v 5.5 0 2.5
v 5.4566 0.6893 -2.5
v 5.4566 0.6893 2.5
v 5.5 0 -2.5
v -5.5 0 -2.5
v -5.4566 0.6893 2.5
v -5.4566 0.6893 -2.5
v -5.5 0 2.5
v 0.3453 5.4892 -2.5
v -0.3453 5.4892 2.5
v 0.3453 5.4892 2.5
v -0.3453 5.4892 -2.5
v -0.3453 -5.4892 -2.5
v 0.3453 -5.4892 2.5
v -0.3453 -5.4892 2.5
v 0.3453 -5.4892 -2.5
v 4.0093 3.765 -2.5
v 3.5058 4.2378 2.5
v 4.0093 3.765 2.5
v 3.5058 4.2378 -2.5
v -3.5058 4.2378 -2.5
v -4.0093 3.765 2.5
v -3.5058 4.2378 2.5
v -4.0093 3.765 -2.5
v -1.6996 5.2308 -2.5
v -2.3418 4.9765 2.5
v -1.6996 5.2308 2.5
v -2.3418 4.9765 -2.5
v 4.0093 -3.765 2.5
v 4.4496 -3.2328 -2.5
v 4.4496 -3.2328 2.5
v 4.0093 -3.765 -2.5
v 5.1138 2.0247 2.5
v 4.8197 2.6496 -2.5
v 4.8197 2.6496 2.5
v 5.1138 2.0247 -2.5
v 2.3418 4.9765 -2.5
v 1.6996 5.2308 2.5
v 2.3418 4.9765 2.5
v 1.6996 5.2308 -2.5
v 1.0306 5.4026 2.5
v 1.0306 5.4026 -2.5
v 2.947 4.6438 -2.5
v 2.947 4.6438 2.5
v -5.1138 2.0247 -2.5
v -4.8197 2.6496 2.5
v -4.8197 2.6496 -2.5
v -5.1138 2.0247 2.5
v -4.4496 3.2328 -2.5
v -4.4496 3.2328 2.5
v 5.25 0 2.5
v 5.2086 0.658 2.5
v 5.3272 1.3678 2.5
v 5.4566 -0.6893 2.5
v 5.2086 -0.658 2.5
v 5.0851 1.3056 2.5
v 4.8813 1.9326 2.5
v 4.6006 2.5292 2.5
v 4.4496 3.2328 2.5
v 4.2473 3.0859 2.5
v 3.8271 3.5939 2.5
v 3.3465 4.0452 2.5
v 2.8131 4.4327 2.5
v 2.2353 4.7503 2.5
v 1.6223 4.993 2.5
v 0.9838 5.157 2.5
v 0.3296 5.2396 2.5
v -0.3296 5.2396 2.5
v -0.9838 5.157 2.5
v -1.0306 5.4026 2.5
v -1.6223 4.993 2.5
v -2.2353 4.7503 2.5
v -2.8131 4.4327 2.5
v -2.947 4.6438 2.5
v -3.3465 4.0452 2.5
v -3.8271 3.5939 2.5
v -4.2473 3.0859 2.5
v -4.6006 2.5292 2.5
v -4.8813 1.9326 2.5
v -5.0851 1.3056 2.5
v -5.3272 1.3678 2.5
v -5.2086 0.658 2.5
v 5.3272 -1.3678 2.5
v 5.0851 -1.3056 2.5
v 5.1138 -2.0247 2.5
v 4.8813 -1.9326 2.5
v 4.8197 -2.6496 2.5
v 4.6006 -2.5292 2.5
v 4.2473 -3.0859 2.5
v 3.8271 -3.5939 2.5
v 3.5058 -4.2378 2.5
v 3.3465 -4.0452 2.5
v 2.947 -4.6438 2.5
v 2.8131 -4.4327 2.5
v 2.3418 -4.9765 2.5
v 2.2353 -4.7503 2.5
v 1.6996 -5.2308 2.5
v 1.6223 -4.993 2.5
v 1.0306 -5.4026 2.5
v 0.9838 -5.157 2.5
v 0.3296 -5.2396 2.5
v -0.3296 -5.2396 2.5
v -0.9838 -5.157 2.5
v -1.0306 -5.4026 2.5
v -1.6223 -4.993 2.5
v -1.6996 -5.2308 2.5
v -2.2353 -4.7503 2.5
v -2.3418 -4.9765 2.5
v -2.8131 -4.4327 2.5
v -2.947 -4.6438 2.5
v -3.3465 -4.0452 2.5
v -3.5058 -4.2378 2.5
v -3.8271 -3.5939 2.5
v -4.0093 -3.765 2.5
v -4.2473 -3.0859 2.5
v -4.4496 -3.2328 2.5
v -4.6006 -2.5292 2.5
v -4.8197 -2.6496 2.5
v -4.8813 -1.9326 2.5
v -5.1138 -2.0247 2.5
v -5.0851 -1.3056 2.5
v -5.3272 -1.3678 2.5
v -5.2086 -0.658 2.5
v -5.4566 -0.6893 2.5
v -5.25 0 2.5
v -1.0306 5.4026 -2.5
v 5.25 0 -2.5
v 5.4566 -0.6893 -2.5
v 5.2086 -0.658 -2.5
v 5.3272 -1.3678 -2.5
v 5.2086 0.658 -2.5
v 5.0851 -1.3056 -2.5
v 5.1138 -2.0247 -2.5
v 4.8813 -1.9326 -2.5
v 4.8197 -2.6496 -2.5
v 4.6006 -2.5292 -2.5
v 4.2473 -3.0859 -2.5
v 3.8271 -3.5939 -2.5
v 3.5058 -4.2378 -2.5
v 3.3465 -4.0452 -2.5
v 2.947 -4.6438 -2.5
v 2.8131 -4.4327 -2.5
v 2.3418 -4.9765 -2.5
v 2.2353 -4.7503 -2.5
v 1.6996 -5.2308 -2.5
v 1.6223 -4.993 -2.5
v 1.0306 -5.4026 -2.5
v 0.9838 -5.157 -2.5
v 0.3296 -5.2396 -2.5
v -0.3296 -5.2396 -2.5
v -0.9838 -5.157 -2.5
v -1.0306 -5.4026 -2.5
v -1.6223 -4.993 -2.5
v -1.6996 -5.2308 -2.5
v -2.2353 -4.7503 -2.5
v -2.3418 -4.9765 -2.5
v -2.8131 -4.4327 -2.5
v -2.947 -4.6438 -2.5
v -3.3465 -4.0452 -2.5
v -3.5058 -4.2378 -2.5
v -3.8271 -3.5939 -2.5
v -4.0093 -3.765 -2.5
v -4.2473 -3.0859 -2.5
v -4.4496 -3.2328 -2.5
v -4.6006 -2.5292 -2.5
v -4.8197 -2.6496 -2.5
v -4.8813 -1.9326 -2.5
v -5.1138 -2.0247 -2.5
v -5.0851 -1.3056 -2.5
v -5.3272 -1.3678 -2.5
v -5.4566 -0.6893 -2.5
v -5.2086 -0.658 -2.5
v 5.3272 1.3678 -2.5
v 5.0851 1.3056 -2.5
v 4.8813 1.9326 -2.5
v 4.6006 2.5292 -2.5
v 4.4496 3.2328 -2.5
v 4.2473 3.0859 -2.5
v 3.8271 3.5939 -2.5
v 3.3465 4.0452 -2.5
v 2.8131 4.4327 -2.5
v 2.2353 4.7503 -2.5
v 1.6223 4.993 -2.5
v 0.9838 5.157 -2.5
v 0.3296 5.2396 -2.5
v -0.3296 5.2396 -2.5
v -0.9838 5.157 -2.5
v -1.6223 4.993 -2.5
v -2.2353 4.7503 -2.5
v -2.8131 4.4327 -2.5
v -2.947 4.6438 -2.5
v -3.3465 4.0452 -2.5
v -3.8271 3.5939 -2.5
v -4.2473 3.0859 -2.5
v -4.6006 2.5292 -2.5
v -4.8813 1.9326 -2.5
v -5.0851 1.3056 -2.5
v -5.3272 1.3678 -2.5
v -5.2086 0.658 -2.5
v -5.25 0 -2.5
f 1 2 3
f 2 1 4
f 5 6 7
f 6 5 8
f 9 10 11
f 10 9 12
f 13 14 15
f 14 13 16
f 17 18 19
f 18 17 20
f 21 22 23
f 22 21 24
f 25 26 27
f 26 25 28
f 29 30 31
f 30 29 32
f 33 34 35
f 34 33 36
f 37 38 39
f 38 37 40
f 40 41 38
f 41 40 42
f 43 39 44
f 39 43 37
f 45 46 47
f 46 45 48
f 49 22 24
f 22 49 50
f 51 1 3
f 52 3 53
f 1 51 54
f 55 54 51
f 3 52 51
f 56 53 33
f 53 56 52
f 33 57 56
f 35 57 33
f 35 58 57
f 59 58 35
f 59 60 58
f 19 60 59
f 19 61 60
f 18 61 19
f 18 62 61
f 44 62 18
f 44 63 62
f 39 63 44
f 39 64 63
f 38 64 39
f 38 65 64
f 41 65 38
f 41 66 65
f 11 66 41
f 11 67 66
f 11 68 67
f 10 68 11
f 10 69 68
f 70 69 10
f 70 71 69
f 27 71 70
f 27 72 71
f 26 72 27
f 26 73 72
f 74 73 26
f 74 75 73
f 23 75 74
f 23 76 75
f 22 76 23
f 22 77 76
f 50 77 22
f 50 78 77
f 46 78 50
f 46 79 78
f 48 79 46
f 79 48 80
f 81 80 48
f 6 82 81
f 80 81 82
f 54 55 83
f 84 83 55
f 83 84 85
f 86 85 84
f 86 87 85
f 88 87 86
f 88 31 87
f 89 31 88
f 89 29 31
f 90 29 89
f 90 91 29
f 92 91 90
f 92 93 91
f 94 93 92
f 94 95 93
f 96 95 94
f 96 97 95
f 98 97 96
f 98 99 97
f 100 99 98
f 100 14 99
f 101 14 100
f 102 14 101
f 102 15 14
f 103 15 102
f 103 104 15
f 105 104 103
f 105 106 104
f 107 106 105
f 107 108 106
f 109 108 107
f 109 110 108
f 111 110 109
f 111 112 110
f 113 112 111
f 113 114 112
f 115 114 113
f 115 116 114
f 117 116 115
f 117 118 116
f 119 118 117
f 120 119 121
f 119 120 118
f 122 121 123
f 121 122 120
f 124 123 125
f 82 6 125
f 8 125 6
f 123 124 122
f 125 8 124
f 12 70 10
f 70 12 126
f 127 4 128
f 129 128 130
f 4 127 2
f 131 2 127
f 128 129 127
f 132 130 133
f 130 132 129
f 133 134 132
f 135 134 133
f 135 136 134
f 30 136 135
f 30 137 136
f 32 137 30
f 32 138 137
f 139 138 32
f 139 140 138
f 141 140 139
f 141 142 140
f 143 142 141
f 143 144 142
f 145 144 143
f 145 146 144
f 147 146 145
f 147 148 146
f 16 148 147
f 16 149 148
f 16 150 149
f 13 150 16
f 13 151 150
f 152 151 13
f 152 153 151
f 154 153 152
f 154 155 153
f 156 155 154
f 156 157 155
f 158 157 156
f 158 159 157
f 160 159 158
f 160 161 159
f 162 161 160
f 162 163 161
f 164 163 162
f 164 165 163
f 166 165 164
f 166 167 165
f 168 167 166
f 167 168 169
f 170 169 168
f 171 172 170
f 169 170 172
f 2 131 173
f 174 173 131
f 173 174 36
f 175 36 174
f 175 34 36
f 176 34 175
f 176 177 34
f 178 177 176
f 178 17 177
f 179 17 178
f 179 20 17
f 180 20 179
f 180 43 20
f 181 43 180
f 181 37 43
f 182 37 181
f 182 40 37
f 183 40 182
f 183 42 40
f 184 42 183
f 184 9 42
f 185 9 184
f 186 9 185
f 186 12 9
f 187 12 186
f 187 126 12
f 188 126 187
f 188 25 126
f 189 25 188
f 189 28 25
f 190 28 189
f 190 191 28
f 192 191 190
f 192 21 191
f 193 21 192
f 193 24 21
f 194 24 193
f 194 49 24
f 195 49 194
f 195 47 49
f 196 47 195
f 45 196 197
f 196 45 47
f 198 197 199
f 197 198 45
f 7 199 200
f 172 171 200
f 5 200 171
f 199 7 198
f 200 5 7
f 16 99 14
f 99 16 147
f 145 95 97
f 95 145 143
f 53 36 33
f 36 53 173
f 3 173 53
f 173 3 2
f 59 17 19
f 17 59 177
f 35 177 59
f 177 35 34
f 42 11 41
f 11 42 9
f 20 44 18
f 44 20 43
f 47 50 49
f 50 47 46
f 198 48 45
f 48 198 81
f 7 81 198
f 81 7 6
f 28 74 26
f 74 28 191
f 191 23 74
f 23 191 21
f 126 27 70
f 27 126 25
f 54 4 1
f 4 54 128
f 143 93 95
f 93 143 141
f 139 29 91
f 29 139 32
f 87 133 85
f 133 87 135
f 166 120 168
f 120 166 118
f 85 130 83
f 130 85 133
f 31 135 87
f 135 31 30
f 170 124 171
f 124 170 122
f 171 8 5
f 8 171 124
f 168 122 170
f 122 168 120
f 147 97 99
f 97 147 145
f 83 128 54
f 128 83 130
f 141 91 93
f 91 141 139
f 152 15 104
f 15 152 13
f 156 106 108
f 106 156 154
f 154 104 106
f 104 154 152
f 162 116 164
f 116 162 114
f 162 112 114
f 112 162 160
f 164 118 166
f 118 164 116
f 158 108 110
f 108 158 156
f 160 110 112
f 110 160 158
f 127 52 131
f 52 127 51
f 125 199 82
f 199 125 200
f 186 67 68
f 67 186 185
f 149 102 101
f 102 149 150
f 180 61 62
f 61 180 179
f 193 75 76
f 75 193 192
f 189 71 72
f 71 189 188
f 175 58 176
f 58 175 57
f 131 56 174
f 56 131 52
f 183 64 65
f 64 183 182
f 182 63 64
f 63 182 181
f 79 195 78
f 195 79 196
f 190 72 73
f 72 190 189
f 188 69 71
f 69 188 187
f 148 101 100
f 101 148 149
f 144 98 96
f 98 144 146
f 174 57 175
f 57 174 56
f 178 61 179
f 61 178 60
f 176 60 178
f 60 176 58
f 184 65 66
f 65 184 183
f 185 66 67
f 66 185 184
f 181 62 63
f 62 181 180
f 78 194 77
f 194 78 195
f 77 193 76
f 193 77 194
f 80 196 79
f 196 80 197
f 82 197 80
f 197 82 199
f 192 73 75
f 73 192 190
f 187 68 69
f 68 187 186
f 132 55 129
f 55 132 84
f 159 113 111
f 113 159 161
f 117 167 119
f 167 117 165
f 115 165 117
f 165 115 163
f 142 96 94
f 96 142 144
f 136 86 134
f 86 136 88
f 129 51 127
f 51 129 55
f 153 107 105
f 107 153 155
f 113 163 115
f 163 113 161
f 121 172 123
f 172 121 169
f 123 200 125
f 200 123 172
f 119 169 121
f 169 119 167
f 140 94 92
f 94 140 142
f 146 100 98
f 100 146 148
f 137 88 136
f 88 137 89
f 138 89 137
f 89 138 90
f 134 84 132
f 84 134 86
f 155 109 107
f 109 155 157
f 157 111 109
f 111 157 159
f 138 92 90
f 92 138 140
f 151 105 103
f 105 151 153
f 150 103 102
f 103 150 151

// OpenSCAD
$fn = 50;


difference() {
	union() {
		translate(v = [0, 0, -2.5000000000]) {
			cylinder(h = 5, r = 5.5000000000);
		}
	}
	union() {
		translate(v = [0, 0, -100.0000000000]) {
			cylinder(h = 200, r = 5.2500000000);
		}
	}
}
